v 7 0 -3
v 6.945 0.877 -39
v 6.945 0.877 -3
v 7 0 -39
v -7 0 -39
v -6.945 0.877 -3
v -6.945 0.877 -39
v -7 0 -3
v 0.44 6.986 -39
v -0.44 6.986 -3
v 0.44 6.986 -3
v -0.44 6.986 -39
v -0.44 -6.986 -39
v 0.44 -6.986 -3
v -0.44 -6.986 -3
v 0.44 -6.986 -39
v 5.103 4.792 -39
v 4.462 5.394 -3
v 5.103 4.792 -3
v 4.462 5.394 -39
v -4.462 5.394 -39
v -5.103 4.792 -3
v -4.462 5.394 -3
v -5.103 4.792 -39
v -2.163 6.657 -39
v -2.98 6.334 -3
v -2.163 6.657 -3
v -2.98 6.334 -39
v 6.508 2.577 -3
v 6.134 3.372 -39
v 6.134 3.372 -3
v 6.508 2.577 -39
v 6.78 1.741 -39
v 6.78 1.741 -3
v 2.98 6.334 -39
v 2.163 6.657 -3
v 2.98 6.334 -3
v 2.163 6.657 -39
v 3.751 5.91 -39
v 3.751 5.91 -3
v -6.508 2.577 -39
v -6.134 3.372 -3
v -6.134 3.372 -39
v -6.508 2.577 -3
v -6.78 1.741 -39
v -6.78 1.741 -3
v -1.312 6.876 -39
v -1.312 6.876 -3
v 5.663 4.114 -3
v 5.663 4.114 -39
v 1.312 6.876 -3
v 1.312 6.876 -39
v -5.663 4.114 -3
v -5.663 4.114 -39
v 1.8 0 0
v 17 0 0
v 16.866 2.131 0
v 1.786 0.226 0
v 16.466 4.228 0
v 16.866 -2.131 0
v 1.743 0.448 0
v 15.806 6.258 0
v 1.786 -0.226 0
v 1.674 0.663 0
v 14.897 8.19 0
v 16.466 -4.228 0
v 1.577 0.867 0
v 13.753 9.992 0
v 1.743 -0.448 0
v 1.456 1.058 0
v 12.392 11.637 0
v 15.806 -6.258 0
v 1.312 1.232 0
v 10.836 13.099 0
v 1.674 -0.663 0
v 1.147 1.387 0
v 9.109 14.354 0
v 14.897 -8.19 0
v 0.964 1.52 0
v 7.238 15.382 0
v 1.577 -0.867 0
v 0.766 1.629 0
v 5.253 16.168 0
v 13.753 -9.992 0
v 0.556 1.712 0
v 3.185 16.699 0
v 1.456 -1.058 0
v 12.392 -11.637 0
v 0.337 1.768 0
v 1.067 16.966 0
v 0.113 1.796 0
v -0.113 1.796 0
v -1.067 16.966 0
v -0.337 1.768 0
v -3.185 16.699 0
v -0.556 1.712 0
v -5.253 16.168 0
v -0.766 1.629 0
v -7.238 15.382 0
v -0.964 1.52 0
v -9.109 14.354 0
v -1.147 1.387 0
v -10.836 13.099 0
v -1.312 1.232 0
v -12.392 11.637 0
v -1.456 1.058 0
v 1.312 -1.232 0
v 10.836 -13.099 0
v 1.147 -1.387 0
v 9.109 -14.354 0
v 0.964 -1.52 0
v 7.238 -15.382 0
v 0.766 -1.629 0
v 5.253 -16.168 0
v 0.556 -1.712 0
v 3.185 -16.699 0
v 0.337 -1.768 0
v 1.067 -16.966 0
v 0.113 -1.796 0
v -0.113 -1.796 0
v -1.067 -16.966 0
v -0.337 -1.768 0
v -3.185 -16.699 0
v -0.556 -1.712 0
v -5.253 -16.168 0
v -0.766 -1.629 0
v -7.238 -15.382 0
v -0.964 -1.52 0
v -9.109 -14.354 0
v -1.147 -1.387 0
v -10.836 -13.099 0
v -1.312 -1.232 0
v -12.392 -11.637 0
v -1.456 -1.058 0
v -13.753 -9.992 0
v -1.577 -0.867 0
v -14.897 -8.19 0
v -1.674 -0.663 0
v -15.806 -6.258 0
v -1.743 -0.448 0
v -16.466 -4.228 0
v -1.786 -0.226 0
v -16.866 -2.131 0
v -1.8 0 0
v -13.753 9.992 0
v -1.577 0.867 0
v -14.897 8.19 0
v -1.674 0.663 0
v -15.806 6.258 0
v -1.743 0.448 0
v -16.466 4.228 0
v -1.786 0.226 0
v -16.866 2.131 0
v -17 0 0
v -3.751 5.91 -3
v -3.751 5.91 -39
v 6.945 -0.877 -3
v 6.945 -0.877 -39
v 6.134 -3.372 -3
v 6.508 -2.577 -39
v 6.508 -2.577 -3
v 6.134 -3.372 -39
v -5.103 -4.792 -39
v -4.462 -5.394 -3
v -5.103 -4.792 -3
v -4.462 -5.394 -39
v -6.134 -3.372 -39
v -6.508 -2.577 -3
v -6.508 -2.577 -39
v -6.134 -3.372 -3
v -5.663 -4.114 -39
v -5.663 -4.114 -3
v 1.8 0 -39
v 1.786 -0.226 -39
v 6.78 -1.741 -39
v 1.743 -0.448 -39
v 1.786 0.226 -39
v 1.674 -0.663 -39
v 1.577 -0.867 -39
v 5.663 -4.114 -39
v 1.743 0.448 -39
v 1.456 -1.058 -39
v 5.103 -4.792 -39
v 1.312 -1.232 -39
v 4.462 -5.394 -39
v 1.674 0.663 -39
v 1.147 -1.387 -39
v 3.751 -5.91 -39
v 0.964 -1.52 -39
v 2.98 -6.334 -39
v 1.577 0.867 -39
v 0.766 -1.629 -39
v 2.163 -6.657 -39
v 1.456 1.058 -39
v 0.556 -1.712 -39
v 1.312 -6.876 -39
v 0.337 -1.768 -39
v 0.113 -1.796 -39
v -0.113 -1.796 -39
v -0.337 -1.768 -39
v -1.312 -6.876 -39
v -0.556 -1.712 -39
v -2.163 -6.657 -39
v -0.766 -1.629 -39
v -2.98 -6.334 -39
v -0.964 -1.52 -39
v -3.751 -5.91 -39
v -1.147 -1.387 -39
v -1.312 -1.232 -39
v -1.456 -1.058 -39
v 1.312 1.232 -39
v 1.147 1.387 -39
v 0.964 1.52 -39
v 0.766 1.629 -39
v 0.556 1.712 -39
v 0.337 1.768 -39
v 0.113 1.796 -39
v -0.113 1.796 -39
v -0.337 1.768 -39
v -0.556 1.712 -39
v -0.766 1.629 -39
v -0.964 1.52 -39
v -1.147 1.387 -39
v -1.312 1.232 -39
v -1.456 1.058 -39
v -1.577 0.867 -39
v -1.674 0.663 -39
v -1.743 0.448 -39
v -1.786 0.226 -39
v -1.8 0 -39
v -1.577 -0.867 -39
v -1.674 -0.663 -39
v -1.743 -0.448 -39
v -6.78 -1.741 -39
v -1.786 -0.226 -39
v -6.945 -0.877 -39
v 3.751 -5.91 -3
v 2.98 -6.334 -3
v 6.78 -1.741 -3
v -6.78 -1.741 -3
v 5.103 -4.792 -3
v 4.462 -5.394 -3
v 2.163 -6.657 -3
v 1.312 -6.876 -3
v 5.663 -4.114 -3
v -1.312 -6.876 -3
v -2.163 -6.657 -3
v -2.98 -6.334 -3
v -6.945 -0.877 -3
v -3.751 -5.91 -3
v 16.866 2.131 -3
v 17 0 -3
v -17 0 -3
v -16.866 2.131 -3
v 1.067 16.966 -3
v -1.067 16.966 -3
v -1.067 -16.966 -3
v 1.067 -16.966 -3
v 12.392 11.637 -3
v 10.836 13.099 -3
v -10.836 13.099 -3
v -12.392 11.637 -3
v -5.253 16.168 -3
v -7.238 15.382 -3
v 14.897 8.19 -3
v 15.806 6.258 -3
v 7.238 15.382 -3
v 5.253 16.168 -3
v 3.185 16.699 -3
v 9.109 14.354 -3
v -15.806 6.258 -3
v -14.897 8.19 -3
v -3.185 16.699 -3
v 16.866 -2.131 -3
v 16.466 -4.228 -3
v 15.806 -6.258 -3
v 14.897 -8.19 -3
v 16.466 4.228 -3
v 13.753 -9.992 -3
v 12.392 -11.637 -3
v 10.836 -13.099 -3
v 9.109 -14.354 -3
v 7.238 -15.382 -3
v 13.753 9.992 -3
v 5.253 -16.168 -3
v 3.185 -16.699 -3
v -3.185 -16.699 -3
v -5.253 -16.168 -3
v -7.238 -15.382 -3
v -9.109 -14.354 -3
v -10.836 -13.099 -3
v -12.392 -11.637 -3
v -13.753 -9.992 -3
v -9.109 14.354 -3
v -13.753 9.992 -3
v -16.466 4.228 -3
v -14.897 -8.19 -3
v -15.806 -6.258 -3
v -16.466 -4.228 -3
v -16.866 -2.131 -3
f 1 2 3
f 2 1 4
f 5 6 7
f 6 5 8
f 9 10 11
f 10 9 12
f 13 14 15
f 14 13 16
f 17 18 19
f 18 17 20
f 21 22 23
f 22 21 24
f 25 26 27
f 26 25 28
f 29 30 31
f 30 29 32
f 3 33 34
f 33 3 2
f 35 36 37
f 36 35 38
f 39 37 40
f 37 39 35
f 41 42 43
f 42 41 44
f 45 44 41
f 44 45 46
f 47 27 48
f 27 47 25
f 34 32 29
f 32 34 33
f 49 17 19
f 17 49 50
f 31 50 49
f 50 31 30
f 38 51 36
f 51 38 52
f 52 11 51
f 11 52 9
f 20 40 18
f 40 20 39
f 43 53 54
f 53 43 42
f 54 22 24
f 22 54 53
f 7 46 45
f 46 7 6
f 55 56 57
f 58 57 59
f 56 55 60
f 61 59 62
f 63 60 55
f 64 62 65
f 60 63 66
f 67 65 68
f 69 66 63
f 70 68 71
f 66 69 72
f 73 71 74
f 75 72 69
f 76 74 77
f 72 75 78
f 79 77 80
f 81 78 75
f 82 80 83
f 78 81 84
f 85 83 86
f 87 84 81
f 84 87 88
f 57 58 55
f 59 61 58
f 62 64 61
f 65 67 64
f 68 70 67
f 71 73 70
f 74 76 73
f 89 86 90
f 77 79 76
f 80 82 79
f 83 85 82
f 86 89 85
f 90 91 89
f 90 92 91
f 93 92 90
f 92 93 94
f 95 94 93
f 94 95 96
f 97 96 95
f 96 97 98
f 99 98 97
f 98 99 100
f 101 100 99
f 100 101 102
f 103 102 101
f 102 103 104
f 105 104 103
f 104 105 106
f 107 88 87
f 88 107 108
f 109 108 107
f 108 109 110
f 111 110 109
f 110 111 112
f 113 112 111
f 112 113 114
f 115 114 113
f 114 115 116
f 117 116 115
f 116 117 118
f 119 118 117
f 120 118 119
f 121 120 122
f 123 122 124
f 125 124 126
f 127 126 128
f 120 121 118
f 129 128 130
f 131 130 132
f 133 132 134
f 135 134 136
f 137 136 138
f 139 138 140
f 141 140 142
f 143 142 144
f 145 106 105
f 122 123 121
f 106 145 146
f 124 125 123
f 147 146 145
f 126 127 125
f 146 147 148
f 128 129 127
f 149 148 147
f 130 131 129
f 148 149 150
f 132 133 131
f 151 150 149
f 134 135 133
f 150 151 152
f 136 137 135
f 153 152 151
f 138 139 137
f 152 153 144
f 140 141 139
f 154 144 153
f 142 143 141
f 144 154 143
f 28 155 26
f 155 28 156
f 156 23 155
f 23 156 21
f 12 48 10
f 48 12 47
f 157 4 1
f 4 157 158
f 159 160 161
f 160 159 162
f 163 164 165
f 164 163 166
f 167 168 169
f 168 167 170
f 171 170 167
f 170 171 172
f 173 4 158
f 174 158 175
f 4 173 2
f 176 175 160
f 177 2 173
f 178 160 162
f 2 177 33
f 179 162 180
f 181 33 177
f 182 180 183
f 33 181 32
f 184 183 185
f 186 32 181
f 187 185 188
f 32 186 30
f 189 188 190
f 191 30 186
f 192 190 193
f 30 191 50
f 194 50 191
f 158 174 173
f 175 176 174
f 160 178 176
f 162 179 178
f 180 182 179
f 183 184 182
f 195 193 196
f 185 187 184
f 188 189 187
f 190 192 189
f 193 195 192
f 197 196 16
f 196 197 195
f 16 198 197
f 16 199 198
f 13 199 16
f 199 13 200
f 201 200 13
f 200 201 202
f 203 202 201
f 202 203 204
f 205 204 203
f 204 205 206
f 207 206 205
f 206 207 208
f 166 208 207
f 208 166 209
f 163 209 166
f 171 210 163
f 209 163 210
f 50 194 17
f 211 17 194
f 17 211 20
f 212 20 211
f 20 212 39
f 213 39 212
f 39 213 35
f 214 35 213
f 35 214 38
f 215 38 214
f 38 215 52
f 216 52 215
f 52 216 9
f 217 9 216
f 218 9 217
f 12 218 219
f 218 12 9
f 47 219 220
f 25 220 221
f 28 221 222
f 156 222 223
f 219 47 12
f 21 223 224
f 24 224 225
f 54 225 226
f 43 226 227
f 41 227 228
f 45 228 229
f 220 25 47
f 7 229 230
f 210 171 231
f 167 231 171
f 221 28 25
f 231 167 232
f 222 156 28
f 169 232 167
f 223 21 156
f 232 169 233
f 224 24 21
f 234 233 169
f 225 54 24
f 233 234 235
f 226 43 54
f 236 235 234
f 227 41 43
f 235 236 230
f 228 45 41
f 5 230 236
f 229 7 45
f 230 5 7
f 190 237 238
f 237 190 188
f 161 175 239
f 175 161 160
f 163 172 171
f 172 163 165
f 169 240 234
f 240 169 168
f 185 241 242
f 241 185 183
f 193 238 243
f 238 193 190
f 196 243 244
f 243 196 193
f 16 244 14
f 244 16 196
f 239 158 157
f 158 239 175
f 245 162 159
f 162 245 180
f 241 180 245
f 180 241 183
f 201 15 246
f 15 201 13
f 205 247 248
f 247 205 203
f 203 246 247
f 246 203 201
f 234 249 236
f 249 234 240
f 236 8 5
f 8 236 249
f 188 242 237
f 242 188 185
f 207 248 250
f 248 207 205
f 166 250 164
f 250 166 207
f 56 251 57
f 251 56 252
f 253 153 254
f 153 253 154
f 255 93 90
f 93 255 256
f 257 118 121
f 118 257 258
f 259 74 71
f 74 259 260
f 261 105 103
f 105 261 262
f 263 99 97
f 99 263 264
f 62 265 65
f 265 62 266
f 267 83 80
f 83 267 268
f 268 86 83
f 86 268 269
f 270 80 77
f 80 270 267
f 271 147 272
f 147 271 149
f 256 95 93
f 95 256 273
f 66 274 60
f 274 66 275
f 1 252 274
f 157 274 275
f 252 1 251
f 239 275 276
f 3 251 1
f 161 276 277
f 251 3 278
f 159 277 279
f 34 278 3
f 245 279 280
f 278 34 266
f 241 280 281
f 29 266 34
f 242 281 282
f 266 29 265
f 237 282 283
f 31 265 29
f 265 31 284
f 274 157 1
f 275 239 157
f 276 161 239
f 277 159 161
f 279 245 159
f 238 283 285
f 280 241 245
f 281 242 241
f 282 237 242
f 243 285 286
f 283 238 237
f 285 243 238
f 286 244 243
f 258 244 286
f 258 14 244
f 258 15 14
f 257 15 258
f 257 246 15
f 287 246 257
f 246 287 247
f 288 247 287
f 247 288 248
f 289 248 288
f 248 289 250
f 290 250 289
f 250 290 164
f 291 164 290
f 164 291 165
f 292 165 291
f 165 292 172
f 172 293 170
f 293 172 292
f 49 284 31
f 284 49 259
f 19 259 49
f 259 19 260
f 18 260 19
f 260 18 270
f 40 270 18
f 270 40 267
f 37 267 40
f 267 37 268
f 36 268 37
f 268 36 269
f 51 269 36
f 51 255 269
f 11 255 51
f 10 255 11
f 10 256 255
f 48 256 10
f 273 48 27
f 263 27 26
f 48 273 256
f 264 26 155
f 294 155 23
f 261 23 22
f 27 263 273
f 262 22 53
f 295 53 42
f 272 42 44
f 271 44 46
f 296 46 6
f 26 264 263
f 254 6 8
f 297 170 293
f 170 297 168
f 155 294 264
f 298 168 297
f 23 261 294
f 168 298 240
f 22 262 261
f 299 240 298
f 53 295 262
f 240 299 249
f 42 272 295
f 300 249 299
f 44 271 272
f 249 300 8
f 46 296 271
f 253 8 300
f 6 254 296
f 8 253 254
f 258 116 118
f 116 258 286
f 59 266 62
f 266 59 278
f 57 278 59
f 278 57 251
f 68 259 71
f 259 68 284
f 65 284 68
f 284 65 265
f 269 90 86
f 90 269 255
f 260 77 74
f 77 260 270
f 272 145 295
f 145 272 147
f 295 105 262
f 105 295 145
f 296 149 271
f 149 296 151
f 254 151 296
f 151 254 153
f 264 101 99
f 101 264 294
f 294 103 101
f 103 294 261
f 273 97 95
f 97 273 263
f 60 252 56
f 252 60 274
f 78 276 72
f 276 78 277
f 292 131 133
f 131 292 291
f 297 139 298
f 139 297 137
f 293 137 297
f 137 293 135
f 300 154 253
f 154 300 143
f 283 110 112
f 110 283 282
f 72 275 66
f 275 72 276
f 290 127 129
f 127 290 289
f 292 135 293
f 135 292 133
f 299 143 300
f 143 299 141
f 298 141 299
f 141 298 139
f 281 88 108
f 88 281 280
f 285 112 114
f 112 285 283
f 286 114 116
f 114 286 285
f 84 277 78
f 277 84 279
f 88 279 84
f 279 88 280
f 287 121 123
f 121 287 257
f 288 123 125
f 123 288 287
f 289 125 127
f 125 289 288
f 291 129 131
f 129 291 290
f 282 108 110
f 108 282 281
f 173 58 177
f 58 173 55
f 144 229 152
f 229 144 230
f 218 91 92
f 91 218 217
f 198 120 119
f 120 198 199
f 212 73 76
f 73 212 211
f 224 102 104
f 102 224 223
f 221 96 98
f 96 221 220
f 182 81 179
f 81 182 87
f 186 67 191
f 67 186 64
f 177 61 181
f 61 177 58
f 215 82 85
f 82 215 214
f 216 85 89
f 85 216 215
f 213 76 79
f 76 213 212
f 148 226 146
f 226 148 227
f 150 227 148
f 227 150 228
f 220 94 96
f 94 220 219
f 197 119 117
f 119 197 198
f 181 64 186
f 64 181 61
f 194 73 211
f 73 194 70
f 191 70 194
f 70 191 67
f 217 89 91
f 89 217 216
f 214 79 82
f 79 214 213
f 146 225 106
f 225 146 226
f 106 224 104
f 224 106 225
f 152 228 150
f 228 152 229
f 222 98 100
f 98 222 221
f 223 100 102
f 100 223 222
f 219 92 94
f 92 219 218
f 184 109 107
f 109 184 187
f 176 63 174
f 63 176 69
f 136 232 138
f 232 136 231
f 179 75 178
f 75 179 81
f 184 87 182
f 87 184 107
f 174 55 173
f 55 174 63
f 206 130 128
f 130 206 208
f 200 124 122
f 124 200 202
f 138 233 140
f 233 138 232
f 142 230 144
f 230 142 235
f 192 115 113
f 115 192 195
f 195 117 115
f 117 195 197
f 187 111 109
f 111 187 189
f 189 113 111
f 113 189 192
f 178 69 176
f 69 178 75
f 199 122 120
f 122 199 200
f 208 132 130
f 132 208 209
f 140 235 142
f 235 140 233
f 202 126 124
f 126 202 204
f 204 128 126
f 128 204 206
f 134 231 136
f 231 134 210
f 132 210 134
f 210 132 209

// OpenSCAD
$fn = 50;


difference() {
	union() {
		translate(v = [0, 0, -39.0000000000]) {
			cylinder(h = 39, r = 7.0000000000);
		}
		translate(v = [0, 0, -3.0000000000]) {
			cylinder(h = 3, r = 17.0000000000);
		}
	}
	union() {
		#translate(v = [0, 0, -39]) {
			cylinder(h = 39, r = 1.8000000000);
		}
	}
}
